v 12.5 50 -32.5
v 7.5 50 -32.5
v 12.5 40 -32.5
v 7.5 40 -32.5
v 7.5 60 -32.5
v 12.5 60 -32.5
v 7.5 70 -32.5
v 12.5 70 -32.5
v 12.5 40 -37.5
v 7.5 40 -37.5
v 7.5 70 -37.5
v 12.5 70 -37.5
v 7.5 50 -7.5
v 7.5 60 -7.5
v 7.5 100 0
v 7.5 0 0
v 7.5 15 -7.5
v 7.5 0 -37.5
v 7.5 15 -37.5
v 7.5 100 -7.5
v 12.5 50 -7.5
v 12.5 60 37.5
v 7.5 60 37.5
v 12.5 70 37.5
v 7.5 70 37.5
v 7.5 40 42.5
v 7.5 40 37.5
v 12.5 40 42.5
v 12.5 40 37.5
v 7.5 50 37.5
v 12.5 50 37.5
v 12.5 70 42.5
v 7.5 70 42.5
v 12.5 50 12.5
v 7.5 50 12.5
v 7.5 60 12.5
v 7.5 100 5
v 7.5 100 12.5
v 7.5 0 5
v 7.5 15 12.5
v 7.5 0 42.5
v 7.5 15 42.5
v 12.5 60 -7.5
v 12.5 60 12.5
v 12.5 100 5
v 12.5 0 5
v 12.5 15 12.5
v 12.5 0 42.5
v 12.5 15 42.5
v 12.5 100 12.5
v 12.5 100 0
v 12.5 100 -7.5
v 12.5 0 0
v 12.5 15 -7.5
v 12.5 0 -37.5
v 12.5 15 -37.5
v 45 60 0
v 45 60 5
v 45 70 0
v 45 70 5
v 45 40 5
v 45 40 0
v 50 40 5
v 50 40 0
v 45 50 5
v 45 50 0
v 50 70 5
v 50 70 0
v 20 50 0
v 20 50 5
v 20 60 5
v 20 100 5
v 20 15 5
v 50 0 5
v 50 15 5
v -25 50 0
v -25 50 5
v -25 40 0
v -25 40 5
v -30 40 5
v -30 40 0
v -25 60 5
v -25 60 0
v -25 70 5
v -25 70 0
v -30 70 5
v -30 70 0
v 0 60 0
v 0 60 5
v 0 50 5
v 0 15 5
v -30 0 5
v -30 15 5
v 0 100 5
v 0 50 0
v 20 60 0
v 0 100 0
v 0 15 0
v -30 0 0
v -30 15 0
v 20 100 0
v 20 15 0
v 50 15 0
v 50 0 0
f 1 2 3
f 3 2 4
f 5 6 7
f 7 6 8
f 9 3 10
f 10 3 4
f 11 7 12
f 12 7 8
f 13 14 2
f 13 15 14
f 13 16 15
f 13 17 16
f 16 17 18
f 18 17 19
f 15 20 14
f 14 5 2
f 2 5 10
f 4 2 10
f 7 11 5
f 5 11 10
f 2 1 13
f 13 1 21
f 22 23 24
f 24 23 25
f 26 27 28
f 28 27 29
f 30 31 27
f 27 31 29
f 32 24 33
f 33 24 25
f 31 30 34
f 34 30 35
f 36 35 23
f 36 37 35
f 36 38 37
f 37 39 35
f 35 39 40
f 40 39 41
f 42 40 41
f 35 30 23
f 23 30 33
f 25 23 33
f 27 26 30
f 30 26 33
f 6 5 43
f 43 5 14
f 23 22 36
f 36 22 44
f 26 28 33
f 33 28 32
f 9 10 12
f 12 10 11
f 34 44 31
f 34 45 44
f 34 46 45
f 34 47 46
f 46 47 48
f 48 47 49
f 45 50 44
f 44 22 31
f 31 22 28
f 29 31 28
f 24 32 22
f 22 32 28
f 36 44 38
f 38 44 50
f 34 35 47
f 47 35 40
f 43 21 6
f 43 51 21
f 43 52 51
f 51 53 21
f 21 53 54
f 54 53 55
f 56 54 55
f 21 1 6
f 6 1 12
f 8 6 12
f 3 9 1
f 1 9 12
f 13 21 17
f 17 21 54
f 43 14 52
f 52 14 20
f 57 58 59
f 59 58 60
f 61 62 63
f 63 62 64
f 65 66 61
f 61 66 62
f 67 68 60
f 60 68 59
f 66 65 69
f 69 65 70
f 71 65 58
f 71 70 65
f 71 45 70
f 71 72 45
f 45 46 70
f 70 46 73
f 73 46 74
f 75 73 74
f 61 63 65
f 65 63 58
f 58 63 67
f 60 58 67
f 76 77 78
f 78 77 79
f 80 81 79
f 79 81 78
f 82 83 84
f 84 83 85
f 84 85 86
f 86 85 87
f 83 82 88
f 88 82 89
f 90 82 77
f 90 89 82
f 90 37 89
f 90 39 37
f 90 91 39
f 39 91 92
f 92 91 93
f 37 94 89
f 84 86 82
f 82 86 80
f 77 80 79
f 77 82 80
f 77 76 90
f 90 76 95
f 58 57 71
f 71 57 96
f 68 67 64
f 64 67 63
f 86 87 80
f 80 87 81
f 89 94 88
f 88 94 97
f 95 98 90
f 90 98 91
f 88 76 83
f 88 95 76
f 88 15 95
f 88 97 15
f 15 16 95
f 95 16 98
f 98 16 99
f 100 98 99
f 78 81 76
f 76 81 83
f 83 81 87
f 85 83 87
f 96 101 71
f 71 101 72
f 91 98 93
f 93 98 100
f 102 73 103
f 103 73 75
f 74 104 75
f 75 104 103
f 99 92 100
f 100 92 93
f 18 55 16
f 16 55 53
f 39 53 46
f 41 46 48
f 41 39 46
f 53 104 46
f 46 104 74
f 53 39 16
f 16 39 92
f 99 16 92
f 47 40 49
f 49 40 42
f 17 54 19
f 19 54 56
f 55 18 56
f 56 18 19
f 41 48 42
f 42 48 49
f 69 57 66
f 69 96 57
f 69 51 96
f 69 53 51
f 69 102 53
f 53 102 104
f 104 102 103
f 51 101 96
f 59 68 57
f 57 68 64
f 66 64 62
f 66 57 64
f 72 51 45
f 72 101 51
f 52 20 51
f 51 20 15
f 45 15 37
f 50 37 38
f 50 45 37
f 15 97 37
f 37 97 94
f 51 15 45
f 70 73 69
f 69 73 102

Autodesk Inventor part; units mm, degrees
ref_plane "YZ Plane" through (0, 0, 0) normal (1, 0, 0) x (0, 1, 0)
ref_plane "XZ Plane" through (0, 0, 0) normal (0, 1, 0) x (-1, 0, 0)
ref_plane "XY Plane" through (0, 0, 0) normal (0, 0, 1) x (1, 0, 0)
sketch "Esquisse1" plane through (0, 0, 0) normal (0, 0, 1) x (1, 0, 0)
  point P0 (0, 0)
sketch "Esquisse2" plane through (0, 0, 0) normal (0, 0, 1) x (1, 0, 0)
  line L0 (0, 0) -> (20, 0)
  line L1 (20, 0) -> (20, 100)
  line L2 (20, 100) -> (0, 100)
  line L3 (0, 100) -> (0, 0)
  dimension "d0" = 100
  dimension "d1" = 20
extrude "Extrusion1" add sketch "Esquisse2" along normal blind 5
sketch "Esquisse3" plane through (0, 0, 5) normal (0, 0, 1) x (1, 0, 0)
  line L0 (20, 100) -> (0, 100) projected
  line L1 (0, 0) -> (20, 0) projected
  line L2 (7.5, 100) -> (12.5, 100)
  line L3 (12.5, 100) -> (12.5, 0)
  line L4 (12.5, 0) -> (7.5, 0)
  line L5 (7.5, 0) -> (7.5, 100)
  line L6 (20, 0) -> (20, 100) projected
  line L7 (0, 100) -> (0, 0) projected
  dimension "d4" = 7.5
  dimension "d5" = 7.5
extrude "Extrusion2" add sketch "Esquisse3" along normal blind 7.5 and the other way blind 12.5 contours L3 L1 L5 L0
sketch "Esquisse4" plane through (0, 0, 12.5) normal (0, 0, 1) x (1, 0, 0)
  line L0 (12.5, 0) -> (12.5, 100) projected
  line L1 (7.5, 0) -> (12.5, 0)
  line L2 (12.5, 0) -> (12.5, 15)
  line L3 (12.5, 15) -> (7.5, 15)
  line L4 (7.5, 15) -> (7.5, 0)
  point P0 (0, 0)
  dimension "d10" = 15
extrude "Extrusion3" add sketch "Esquisse4" along normal blind 30 and the other way blind 50
sketch "Esquisse5" plane through (0, 0, 0) normal (-1, 0, 0) x (0, 0, 1)
  line L0 (5, 100) -> (5, 0) projected
  line L1 (0, 0) -> (5, 0)
  line L2 (5, 0) -> (5, 15)
  line L3 (5, 15) -> (0, 15)
  line L4 (0, 15) -> (0, 0)
  dimension "d15" = 15
extrude "Extrusion4" add sketch "Esquisse5" along normal blind 30 and the other way blind 50
sketch "Esquisse6" plane through (0, 100, 0) normal (-1, 0, 0) x (0, 0, 1)
  line L0 (5, 0) -> (5, -85) projected
  line L1 (0, -50) -> (5, -50)
  line L2 (5, -50) -> (5, -40)
  line L3 (5, -40) -> (0, -40)
  line L4 (0, -40) -> (0, -50)
  line L5 (0, 0) -> (5, 0) projected
  line L6 (0, -85) -> (5, -85) projected
  point P0 (0, -100)
  dimension "d20" = 40
  dimension "d22" = 35
extrude "Extrusion5" add sketch "Esquisse6" along normal blind 30 and the other way blind 50
sketch "Esquisse7" plane through (20, 60, 5) normal (0, 1, 0) x (1, 0, 0)
  line L0 (-20, 5) -> (-50, 5) projected
  line L1 (-50, 0) -> (-45, 0)
  line L2 (-45, 0) -> (-45, 5)
  line L3 (-45, 5) -> (-50, 5)
  line L4 (-50, 5) -> (-50, 0)
  dimension "d27" = 5
  dimension "d28" = 5
  dimension "d29" = 5
extrude "Extrusion6" add sketch "Esquisse7" along normal blind 10 and the other way blind 20
sketch "Esquisse8" plane through (20, 60, 5) normal (0, 1, 0) x (1, 0, 0)
  line L0 (30, 0) -> (25, 0)
  line L1 (25, 0) -> (25, 5)
  line L2 (25, 5) -> (30, 5)
  line L3 (30, 5) -> (30, 0)
  point P0 (-20, 5)
  dimension "d34" = 5
  dimension "d35" = 5
extrude "Extrusion7" add sketch "Esquisse8" along normal blind 10 and the other way blind 20
sketch "Esquisse9" plane through (0, 0, -7.5) normal (0, 0, -1) x (-1, 0, 0)
  line L0 (-7.5, 15) -> (-7.5, 100) projected
  line L1 (-12.5, 60) -> (-7.5, 60)
  line L2 (-7.5, 60) -> (-7.5, 50)
  line L3 (-7.5, 50) -> (-12.5, 50)
  line L4 (-12.5, 50) -> (-12.5, 60)
  line L5 (-7.5, 100) -> (-12.5, 100) projected
  line L6 (-12.5, 15) -> (-7.5, 15) projected
  point P0 (0, 0)
  dimension "d40" = 5
  dimension "d41" = 40
  dimension "d42" = 35
extrude "Extrusion8" add sketch "Esquisse9" along normal blind 30 and the other way blind 50
sketch "Esquisse10" plane through (7.5, 60, 12.5) normal (0, 1, 0) x (1, 0, 0)
  line L0 (0, 0) -> (0, -30) projected
  line L1 (5, -30) -> (0, -30)
  line L2 (0, -30) -> (0, -25)
  line L3 (0, -25) -> (5, -25)
  line L4 (5, -25) -> (5, -30)
  point P0 (-7.5, 12.5)
  dimension "d47" = 5
extrude "Extrusion9" add sketch "Esquisse10" along normal blind 10 and the other way blind 20
sketch "Esquisse11" plane through (7.5, 60, -7.5) normal (0, 1, 0) x (1, 0, 0)
  line L0 (5, 0) -> (5, 30) projected
  line L1 (0, 30) -> (5, 30)
  line L2 (5, 30) -> (5, 25)
  line L3 (5, 25) -> (0, 25)
  line L4 (0, 25) -> (0, 30)
  point P0 (-7.5, -7.5)
  dimension "d52" = 5
extrude "Extrusion10" add sketch "Esquisse11" along normal blind 10 and the other way blind 20
